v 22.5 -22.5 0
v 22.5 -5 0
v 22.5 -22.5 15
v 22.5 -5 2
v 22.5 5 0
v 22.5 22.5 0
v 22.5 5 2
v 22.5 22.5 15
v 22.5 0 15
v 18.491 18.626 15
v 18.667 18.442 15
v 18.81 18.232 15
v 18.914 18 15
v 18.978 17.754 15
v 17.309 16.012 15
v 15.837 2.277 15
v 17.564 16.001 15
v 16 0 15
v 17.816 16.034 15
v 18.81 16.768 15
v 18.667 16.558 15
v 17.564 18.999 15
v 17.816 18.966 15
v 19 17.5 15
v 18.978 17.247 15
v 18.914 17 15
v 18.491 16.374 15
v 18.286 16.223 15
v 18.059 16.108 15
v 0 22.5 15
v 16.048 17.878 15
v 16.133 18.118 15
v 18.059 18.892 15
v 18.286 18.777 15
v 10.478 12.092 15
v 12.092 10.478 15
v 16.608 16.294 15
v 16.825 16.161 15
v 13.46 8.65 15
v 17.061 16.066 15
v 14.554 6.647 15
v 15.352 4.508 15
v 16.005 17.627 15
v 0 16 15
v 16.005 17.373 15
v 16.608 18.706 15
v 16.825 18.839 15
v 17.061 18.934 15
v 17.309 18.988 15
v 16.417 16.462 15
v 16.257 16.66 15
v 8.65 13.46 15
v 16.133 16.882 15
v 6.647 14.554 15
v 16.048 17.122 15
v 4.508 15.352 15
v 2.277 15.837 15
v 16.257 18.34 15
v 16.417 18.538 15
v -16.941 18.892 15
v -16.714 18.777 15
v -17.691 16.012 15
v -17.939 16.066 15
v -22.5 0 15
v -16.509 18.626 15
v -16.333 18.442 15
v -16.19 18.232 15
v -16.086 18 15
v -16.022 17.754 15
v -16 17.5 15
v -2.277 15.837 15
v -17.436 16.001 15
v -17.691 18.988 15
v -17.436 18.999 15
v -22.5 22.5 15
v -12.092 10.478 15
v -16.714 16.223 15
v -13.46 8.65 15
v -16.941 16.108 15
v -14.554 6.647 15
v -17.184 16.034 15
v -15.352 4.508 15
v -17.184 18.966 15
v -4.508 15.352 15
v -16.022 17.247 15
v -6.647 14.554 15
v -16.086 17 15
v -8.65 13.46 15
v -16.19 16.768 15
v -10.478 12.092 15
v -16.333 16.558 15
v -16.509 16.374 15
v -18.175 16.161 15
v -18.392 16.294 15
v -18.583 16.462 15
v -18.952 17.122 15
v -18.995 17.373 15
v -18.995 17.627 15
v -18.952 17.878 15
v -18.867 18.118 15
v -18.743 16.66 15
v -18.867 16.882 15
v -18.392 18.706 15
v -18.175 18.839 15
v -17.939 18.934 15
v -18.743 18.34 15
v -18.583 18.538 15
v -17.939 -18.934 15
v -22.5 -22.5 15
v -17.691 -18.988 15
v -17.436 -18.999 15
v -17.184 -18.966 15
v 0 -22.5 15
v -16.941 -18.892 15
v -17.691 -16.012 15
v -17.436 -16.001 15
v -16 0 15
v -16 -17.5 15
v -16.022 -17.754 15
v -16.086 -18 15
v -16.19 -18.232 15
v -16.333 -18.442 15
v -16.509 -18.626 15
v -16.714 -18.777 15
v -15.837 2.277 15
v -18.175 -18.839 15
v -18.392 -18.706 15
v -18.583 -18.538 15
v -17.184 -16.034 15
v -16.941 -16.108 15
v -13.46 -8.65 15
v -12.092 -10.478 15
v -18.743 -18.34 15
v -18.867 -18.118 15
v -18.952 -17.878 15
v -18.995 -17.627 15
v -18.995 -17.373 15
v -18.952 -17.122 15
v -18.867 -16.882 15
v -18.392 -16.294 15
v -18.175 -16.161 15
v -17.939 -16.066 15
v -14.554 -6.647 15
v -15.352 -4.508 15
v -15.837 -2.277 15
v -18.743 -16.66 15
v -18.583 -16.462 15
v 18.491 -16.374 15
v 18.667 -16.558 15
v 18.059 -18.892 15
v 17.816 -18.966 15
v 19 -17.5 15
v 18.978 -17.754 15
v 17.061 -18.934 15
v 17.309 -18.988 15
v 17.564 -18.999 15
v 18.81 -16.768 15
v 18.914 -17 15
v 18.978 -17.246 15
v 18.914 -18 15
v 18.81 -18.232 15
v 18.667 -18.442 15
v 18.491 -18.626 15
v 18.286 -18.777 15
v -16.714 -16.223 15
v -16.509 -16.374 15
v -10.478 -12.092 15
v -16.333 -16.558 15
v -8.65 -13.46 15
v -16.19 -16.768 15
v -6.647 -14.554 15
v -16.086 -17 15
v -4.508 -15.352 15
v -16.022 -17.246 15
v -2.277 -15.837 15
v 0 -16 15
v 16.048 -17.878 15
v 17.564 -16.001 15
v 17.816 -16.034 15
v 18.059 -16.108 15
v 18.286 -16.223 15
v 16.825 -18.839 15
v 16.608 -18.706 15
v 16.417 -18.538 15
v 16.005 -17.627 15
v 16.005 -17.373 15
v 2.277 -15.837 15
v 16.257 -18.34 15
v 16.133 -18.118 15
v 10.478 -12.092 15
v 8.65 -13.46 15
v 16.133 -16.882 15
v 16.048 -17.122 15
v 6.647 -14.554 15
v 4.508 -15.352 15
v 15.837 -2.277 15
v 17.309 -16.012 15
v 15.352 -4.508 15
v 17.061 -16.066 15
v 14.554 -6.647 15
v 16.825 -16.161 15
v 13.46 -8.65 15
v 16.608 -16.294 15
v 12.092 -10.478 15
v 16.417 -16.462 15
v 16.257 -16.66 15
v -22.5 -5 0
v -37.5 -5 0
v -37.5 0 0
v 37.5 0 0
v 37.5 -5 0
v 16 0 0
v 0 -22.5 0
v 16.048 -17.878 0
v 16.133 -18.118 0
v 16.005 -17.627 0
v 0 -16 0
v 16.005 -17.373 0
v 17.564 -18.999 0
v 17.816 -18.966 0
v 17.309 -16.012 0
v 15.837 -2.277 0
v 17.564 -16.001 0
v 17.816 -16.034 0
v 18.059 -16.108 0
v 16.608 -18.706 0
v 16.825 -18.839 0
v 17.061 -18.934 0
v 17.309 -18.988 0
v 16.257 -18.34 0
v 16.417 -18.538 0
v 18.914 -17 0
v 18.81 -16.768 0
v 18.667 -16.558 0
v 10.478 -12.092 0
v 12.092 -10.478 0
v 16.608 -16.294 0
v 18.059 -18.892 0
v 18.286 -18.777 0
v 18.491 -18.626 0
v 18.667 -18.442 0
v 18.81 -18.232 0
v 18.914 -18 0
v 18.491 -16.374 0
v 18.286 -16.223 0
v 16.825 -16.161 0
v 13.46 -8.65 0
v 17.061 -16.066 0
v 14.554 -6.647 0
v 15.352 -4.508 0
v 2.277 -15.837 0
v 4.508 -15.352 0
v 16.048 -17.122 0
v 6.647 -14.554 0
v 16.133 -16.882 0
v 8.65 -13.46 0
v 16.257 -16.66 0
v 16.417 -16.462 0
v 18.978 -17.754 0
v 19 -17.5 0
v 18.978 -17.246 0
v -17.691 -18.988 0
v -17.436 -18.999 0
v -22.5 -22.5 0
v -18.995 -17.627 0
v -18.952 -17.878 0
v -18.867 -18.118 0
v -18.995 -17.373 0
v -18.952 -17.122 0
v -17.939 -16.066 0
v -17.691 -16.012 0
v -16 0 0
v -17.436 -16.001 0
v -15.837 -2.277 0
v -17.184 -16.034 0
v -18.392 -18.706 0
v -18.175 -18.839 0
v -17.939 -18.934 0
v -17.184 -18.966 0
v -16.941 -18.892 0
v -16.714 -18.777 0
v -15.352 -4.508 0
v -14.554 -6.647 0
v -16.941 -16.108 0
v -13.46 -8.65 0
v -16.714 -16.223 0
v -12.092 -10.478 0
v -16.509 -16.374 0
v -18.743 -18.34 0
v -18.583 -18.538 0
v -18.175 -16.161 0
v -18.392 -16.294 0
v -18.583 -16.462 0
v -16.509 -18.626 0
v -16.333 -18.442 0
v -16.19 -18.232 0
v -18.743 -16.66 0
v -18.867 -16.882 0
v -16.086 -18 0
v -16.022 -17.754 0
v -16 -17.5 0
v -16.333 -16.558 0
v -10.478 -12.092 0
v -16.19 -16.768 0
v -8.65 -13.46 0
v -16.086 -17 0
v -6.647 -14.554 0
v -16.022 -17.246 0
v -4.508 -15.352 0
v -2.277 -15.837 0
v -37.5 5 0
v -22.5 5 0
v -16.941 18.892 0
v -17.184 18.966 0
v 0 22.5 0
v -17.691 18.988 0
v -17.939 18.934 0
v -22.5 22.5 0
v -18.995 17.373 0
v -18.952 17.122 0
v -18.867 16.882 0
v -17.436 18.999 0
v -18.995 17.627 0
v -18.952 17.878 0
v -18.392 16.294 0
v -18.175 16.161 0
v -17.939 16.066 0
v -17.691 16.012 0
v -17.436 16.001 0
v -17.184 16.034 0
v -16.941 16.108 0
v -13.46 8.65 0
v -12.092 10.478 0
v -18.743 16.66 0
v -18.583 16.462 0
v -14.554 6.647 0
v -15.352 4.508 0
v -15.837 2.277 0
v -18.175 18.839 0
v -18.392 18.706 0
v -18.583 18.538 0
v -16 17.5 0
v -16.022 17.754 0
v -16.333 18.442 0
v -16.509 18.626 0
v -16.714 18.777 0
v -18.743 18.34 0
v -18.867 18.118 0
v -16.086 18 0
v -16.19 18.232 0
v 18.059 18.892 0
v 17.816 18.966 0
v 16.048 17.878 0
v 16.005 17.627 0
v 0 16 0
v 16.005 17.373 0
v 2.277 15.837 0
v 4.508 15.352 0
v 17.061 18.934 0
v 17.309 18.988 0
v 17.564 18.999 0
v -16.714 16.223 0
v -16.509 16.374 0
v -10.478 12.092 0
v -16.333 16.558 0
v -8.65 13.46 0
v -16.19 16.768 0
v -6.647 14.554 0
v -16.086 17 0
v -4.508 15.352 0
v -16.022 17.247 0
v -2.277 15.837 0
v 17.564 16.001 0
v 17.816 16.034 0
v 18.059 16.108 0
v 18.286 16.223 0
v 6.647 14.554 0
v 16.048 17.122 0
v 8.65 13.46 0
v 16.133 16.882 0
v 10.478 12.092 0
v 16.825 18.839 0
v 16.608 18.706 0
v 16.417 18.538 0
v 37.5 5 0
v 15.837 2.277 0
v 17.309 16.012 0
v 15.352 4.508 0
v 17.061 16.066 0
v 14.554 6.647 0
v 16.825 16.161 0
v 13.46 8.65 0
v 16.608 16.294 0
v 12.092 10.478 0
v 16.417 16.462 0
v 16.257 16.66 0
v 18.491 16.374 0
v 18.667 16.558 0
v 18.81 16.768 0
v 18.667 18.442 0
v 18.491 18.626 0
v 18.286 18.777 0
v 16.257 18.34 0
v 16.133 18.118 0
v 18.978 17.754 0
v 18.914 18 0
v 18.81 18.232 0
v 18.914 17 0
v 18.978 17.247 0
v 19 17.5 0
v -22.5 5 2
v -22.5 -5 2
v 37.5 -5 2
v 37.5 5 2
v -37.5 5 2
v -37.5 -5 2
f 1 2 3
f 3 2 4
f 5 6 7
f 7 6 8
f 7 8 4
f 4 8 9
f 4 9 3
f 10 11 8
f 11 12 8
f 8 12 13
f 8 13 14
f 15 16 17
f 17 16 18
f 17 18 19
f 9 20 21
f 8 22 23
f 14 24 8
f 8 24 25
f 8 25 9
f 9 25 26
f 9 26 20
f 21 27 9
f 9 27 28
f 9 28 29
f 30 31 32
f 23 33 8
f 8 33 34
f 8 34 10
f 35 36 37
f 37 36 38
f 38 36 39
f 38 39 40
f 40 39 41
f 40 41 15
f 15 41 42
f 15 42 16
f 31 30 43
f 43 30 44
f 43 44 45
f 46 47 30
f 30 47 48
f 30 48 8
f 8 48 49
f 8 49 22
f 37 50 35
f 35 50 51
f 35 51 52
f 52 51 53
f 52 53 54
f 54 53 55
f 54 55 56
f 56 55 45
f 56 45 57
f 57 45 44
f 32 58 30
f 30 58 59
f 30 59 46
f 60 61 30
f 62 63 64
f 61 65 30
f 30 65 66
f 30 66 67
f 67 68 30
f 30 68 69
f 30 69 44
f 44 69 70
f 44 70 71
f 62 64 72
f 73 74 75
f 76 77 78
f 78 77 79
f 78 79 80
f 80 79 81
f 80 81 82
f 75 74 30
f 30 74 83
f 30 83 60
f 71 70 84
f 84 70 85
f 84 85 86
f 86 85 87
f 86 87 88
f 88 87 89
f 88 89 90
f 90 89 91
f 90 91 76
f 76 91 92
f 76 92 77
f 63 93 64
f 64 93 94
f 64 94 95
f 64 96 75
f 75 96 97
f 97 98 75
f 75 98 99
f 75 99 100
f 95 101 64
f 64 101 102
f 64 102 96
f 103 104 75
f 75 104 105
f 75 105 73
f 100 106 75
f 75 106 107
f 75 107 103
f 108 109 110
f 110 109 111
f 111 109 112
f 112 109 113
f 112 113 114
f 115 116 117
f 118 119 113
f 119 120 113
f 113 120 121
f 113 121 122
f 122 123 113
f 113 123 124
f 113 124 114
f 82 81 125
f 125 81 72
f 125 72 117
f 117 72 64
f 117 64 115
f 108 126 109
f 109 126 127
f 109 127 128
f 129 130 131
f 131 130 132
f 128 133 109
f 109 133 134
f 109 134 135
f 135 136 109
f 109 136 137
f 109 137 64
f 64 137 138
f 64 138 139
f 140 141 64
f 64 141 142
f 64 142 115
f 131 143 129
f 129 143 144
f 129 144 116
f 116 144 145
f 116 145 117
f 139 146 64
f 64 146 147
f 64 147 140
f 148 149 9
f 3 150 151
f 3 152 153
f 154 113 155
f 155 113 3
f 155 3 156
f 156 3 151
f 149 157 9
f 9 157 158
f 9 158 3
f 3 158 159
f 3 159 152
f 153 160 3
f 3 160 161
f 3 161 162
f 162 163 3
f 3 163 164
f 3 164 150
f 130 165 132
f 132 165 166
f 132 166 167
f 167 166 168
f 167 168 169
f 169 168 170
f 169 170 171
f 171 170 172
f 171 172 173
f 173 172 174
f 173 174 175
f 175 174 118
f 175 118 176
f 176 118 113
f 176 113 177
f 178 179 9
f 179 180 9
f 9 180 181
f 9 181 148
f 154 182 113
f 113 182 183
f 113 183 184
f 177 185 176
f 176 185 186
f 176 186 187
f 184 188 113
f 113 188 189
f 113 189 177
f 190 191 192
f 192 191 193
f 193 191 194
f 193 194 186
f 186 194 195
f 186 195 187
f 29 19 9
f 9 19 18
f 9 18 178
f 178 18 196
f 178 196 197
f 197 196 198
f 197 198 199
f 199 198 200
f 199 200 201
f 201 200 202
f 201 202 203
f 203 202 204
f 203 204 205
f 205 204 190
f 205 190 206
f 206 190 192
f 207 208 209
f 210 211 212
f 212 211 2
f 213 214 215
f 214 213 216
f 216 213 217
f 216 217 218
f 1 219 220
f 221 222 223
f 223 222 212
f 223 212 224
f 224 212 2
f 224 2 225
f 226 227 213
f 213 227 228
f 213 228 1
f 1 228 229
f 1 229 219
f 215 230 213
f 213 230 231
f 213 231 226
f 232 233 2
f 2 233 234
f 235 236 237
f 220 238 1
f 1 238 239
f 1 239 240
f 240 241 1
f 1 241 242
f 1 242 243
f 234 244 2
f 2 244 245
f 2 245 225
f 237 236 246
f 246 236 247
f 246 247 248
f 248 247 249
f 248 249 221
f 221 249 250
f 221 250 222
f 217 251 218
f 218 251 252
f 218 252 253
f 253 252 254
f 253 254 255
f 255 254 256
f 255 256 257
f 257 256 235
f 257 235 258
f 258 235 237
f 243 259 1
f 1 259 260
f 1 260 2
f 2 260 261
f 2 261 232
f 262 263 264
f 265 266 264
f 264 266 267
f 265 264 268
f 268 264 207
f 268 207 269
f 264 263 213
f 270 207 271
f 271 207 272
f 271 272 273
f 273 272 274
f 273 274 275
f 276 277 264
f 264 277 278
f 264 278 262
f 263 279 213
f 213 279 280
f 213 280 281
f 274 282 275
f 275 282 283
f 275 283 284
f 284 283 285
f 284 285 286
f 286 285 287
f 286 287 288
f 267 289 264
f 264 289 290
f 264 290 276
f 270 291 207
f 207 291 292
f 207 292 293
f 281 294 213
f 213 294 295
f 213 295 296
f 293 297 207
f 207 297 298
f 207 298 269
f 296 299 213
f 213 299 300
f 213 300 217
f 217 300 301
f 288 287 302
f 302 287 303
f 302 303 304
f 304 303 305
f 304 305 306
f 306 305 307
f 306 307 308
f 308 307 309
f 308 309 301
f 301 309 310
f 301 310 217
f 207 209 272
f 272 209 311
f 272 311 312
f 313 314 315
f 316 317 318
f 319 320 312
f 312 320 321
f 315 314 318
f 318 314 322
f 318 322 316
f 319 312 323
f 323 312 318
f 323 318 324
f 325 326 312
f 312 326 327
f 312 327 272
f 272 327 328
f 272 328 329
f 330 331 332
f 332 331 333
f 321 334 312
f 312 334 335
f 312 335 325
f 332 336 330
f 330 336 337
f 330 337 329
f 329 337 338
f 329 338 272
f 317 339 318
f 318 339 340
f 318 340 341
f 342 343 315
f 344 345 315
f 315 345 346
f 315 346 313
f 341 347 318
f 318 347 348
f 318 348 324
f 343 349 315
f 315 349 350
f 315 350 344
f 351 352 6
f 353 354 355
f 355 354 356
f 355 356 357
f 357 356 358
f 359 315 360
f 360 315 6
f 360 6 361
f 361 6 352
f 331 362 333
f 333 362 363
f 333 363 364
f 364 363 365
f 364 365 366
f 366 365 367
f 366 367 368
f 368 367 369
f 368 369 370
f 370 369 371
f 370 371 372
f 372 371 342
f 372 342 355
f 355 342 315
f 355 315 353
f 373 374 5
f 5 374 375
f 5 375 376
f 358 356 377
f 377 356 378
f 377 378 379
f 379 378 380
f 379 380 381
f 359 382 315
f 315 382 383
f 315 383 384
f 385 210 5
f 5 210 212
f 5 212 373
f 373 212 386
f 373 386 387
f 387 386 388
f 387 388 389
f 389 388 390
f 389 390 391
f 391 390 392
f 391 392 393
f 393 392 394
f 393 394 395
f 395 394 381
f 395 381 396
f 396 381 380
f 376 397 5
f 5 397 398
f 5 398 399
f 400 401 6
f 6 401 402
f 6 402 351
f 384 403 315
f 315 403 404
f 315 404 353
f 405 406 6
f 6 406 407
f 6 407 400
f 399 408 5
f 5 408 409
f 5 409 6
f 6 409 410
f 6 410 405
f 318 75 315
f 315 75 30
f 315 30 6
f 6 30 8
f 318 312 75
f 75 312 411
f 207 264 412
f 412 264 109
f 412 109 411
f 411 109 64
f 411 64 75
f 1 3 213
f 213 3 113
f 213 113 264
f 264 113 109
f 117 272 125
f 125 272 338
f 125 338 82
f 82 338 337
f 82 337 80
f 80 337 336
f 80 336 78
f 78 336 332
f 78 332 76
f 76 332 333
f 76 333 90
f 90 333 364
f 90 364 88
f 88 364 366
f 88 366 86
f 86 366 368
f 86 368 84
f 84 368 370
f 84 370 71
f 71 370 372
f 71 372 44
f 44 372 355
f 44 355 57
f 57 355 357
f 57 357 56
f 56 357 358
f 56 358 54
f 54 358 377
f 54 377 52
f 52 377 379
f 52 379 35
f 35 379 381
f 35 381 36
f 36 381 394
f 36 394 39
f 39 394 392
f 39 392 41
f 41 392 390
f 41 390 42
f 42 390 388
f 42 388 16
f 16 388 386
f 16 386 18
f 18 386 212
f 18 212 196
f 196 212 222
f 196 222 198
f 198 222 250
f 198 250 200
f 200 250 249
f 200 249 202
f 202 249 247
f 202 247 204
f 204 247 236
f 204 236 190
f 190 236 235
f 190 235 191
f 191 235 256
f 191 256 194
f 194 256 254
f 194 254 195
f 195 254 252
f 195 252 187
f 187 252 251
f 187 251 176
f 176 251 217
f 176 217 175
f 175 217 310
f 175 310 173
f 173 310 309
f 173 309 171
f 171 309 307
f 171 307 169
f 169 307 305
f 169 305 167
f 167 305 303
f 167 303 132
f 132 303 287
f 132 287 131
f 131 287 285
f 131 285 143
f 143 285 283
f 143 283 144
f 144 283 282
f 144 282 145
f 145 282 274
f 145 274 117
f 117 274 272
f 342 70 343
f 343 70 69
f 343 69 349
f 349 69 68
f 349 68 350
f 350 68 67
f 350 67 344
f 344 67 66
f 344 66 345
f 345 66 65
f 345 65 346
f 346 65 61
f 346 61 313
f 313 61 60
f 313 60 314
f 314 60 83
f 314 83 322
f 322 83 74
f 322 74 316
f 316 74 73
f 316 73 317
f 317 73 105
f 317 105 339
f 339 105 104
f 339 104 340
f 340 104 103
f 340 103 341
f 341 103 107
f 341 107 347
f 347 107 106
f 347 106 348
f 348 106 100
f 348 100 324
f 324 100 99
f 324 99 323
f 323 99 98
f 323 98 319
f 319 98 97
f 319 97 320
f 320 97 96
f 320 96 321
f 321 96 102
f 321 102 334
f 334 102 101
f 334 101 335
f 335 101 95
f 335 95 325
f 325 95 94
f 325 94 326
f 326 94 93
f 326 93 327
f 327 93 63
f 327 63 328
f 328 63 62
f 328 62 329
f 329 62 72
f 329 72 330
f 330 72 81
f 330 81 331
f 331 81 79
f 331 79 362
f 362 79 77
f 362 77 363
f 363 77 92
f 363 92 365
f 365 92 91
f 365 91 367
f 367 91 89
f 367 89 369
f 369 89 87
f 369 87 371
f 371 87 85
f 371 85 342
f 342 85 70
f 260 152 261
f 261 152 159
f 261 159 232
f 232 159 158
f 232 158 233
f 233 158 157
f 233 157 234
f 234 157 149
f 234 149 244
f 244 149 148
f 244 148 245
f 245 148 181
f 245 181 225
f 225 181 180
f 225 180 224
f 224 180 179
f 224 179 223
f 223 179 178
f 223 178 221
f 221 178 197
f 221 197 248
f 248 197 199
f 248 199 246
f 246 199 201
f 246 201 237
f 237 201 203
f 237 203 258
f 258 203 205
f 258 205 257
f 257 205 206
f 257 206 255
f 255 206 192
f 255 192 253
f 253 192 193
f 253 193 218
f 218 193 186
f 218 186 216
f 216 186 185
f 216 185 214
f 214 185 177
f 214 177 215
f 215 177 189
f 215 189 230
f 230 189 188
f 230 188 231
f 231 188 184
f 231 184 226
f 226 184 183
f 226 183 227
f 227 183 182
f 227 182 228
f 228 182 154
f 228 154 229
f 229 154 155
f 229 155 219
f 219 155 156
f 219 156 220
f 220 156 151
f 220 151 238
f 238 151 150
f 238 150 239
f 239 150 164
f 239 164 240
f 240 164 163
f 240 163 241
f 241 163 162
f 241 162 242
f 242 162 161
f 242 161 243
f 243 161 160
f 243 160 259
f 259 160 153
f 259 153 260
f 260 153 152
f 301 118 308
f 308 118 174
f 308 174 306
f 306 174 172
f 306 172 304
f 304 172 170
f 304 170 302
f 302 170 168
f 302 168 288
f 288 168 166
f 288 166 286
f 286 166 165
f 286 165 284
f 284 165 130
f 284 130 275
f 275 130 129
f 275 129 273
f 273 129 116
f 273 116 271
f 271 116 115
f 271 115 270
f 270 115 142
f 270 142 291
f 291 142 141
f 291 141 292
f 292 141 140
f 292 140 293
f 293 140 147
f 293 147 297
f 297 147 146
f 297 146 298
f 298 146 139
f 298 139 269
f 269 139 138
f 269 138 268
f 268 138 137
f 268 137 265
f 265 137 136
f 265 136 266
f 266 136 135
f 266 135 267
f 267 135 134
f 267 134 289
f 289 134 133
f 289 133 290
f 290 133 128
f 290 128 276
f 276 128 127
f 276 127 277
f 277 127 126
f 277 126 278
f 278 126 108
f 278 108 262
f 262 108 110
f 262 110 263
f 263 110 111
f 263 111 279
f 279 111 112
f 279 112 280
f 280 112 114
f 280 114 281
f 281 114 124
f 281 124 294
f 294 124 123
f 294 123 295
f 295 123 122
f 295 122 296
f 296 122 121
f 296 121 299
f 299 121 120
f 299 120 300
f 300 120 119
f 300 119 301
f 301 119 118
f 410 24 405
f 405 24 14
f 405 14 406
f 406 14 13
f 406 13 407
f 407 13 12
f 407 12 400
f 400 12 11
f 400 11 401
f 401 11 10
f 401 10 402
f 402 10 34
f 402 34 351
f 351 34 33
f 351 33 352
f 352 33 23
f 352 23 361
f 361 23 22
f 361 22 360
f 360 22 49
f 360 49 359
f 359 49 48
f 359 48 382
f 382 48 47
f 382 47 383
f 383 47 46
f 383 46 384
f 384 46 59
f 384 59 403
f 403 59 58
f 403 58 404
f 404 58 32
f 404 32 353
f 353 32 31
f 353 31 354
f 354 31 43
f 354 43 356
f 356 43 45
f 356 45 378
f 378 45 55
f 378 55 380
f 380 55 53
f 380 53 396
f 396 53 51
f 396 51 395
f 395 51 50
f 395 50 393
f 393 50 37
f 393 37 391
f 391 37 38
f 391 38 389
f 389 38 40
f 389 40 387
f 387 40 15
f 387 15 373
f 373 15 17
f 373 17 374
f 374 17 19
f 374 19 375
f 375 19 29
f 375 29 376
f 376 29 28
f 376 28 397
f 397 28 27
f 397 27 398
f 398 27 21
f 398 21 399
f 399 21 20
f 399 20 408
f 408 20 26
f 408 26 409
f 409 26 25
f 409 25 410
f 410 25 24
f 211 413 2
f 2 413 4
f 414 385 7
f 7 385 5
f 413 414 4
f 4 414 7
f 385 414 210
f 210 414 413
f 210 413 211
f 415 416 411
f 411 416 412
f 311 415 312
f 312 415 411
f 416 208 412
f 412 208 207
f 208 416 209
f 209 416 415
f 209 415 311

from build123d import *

# Parameters (mm, degrees)
CROQUIS1_W              = 45
CROQUIS1_H              = 45
CROQUIS1_R              = 16
SALIENTE_EXTRUIR1_DEPTH = 15
CROQUIS2_R              = 1.5
CORTAR_EXTRUIR1_DEPTH   = 15
SALIENTE_EXTRUIR2_DEPTH = 15


with BuildPart() as part:
    # Croquis1 → Saliente-Extruir1 (new body)
    with BuildSketch(Plane.XY):
        Rectangle(CROQUIS1_W, CROQUIS1_H)
        Circle(CROQUIS1_R, mode=Mode.SUBTRACT)
    extrude(amount=SALIENTE_EXTRUIR1_DEPTH)

    # Croquis2 → Cortar-Extruir1 (cut)
    with BuildSketch(Plane.XY.offset(15)):
        with Locations((-17.5, 17.5)):
            Circle(CROQUIS2_R)
        with Locations((17.5, -17.5)):
            Circle(CROQUIS2_R)
        with Locations((-17.5, -17.5)):
            Circle(CROQUIS2_R)
        with Locations((17.5, 17.5)):
            Circle(CROQUIS2_R)
    extrude(amount=-CORTAR_EXTRUIR1_DEPTH, mode=Mode.SUBTRACT)

    # Croquis3 → Saliente-Extruir2 (add)
    with BuildSketch(Plane(origin=(22.5, 0, 0), x_dir=(0, 0, -1), z_dir=(1, 0, 0))):
        Polygon((-2, 0), (-2, 5), (0, 5), (0, -5), (-2, -5), align=None)
    saliente_extruir2 = extrude(amount=SALIENTE_EXTRUIR2_DEPTH)

    # Simetría1: Saliente-Extruir2 across plane
    add(saliente_extruir2.mirror(Plane(origin=(0, 0, 0), x_dir=(0, 0, 1), z_dir=(1, 0, 0))))


solid = part.part
